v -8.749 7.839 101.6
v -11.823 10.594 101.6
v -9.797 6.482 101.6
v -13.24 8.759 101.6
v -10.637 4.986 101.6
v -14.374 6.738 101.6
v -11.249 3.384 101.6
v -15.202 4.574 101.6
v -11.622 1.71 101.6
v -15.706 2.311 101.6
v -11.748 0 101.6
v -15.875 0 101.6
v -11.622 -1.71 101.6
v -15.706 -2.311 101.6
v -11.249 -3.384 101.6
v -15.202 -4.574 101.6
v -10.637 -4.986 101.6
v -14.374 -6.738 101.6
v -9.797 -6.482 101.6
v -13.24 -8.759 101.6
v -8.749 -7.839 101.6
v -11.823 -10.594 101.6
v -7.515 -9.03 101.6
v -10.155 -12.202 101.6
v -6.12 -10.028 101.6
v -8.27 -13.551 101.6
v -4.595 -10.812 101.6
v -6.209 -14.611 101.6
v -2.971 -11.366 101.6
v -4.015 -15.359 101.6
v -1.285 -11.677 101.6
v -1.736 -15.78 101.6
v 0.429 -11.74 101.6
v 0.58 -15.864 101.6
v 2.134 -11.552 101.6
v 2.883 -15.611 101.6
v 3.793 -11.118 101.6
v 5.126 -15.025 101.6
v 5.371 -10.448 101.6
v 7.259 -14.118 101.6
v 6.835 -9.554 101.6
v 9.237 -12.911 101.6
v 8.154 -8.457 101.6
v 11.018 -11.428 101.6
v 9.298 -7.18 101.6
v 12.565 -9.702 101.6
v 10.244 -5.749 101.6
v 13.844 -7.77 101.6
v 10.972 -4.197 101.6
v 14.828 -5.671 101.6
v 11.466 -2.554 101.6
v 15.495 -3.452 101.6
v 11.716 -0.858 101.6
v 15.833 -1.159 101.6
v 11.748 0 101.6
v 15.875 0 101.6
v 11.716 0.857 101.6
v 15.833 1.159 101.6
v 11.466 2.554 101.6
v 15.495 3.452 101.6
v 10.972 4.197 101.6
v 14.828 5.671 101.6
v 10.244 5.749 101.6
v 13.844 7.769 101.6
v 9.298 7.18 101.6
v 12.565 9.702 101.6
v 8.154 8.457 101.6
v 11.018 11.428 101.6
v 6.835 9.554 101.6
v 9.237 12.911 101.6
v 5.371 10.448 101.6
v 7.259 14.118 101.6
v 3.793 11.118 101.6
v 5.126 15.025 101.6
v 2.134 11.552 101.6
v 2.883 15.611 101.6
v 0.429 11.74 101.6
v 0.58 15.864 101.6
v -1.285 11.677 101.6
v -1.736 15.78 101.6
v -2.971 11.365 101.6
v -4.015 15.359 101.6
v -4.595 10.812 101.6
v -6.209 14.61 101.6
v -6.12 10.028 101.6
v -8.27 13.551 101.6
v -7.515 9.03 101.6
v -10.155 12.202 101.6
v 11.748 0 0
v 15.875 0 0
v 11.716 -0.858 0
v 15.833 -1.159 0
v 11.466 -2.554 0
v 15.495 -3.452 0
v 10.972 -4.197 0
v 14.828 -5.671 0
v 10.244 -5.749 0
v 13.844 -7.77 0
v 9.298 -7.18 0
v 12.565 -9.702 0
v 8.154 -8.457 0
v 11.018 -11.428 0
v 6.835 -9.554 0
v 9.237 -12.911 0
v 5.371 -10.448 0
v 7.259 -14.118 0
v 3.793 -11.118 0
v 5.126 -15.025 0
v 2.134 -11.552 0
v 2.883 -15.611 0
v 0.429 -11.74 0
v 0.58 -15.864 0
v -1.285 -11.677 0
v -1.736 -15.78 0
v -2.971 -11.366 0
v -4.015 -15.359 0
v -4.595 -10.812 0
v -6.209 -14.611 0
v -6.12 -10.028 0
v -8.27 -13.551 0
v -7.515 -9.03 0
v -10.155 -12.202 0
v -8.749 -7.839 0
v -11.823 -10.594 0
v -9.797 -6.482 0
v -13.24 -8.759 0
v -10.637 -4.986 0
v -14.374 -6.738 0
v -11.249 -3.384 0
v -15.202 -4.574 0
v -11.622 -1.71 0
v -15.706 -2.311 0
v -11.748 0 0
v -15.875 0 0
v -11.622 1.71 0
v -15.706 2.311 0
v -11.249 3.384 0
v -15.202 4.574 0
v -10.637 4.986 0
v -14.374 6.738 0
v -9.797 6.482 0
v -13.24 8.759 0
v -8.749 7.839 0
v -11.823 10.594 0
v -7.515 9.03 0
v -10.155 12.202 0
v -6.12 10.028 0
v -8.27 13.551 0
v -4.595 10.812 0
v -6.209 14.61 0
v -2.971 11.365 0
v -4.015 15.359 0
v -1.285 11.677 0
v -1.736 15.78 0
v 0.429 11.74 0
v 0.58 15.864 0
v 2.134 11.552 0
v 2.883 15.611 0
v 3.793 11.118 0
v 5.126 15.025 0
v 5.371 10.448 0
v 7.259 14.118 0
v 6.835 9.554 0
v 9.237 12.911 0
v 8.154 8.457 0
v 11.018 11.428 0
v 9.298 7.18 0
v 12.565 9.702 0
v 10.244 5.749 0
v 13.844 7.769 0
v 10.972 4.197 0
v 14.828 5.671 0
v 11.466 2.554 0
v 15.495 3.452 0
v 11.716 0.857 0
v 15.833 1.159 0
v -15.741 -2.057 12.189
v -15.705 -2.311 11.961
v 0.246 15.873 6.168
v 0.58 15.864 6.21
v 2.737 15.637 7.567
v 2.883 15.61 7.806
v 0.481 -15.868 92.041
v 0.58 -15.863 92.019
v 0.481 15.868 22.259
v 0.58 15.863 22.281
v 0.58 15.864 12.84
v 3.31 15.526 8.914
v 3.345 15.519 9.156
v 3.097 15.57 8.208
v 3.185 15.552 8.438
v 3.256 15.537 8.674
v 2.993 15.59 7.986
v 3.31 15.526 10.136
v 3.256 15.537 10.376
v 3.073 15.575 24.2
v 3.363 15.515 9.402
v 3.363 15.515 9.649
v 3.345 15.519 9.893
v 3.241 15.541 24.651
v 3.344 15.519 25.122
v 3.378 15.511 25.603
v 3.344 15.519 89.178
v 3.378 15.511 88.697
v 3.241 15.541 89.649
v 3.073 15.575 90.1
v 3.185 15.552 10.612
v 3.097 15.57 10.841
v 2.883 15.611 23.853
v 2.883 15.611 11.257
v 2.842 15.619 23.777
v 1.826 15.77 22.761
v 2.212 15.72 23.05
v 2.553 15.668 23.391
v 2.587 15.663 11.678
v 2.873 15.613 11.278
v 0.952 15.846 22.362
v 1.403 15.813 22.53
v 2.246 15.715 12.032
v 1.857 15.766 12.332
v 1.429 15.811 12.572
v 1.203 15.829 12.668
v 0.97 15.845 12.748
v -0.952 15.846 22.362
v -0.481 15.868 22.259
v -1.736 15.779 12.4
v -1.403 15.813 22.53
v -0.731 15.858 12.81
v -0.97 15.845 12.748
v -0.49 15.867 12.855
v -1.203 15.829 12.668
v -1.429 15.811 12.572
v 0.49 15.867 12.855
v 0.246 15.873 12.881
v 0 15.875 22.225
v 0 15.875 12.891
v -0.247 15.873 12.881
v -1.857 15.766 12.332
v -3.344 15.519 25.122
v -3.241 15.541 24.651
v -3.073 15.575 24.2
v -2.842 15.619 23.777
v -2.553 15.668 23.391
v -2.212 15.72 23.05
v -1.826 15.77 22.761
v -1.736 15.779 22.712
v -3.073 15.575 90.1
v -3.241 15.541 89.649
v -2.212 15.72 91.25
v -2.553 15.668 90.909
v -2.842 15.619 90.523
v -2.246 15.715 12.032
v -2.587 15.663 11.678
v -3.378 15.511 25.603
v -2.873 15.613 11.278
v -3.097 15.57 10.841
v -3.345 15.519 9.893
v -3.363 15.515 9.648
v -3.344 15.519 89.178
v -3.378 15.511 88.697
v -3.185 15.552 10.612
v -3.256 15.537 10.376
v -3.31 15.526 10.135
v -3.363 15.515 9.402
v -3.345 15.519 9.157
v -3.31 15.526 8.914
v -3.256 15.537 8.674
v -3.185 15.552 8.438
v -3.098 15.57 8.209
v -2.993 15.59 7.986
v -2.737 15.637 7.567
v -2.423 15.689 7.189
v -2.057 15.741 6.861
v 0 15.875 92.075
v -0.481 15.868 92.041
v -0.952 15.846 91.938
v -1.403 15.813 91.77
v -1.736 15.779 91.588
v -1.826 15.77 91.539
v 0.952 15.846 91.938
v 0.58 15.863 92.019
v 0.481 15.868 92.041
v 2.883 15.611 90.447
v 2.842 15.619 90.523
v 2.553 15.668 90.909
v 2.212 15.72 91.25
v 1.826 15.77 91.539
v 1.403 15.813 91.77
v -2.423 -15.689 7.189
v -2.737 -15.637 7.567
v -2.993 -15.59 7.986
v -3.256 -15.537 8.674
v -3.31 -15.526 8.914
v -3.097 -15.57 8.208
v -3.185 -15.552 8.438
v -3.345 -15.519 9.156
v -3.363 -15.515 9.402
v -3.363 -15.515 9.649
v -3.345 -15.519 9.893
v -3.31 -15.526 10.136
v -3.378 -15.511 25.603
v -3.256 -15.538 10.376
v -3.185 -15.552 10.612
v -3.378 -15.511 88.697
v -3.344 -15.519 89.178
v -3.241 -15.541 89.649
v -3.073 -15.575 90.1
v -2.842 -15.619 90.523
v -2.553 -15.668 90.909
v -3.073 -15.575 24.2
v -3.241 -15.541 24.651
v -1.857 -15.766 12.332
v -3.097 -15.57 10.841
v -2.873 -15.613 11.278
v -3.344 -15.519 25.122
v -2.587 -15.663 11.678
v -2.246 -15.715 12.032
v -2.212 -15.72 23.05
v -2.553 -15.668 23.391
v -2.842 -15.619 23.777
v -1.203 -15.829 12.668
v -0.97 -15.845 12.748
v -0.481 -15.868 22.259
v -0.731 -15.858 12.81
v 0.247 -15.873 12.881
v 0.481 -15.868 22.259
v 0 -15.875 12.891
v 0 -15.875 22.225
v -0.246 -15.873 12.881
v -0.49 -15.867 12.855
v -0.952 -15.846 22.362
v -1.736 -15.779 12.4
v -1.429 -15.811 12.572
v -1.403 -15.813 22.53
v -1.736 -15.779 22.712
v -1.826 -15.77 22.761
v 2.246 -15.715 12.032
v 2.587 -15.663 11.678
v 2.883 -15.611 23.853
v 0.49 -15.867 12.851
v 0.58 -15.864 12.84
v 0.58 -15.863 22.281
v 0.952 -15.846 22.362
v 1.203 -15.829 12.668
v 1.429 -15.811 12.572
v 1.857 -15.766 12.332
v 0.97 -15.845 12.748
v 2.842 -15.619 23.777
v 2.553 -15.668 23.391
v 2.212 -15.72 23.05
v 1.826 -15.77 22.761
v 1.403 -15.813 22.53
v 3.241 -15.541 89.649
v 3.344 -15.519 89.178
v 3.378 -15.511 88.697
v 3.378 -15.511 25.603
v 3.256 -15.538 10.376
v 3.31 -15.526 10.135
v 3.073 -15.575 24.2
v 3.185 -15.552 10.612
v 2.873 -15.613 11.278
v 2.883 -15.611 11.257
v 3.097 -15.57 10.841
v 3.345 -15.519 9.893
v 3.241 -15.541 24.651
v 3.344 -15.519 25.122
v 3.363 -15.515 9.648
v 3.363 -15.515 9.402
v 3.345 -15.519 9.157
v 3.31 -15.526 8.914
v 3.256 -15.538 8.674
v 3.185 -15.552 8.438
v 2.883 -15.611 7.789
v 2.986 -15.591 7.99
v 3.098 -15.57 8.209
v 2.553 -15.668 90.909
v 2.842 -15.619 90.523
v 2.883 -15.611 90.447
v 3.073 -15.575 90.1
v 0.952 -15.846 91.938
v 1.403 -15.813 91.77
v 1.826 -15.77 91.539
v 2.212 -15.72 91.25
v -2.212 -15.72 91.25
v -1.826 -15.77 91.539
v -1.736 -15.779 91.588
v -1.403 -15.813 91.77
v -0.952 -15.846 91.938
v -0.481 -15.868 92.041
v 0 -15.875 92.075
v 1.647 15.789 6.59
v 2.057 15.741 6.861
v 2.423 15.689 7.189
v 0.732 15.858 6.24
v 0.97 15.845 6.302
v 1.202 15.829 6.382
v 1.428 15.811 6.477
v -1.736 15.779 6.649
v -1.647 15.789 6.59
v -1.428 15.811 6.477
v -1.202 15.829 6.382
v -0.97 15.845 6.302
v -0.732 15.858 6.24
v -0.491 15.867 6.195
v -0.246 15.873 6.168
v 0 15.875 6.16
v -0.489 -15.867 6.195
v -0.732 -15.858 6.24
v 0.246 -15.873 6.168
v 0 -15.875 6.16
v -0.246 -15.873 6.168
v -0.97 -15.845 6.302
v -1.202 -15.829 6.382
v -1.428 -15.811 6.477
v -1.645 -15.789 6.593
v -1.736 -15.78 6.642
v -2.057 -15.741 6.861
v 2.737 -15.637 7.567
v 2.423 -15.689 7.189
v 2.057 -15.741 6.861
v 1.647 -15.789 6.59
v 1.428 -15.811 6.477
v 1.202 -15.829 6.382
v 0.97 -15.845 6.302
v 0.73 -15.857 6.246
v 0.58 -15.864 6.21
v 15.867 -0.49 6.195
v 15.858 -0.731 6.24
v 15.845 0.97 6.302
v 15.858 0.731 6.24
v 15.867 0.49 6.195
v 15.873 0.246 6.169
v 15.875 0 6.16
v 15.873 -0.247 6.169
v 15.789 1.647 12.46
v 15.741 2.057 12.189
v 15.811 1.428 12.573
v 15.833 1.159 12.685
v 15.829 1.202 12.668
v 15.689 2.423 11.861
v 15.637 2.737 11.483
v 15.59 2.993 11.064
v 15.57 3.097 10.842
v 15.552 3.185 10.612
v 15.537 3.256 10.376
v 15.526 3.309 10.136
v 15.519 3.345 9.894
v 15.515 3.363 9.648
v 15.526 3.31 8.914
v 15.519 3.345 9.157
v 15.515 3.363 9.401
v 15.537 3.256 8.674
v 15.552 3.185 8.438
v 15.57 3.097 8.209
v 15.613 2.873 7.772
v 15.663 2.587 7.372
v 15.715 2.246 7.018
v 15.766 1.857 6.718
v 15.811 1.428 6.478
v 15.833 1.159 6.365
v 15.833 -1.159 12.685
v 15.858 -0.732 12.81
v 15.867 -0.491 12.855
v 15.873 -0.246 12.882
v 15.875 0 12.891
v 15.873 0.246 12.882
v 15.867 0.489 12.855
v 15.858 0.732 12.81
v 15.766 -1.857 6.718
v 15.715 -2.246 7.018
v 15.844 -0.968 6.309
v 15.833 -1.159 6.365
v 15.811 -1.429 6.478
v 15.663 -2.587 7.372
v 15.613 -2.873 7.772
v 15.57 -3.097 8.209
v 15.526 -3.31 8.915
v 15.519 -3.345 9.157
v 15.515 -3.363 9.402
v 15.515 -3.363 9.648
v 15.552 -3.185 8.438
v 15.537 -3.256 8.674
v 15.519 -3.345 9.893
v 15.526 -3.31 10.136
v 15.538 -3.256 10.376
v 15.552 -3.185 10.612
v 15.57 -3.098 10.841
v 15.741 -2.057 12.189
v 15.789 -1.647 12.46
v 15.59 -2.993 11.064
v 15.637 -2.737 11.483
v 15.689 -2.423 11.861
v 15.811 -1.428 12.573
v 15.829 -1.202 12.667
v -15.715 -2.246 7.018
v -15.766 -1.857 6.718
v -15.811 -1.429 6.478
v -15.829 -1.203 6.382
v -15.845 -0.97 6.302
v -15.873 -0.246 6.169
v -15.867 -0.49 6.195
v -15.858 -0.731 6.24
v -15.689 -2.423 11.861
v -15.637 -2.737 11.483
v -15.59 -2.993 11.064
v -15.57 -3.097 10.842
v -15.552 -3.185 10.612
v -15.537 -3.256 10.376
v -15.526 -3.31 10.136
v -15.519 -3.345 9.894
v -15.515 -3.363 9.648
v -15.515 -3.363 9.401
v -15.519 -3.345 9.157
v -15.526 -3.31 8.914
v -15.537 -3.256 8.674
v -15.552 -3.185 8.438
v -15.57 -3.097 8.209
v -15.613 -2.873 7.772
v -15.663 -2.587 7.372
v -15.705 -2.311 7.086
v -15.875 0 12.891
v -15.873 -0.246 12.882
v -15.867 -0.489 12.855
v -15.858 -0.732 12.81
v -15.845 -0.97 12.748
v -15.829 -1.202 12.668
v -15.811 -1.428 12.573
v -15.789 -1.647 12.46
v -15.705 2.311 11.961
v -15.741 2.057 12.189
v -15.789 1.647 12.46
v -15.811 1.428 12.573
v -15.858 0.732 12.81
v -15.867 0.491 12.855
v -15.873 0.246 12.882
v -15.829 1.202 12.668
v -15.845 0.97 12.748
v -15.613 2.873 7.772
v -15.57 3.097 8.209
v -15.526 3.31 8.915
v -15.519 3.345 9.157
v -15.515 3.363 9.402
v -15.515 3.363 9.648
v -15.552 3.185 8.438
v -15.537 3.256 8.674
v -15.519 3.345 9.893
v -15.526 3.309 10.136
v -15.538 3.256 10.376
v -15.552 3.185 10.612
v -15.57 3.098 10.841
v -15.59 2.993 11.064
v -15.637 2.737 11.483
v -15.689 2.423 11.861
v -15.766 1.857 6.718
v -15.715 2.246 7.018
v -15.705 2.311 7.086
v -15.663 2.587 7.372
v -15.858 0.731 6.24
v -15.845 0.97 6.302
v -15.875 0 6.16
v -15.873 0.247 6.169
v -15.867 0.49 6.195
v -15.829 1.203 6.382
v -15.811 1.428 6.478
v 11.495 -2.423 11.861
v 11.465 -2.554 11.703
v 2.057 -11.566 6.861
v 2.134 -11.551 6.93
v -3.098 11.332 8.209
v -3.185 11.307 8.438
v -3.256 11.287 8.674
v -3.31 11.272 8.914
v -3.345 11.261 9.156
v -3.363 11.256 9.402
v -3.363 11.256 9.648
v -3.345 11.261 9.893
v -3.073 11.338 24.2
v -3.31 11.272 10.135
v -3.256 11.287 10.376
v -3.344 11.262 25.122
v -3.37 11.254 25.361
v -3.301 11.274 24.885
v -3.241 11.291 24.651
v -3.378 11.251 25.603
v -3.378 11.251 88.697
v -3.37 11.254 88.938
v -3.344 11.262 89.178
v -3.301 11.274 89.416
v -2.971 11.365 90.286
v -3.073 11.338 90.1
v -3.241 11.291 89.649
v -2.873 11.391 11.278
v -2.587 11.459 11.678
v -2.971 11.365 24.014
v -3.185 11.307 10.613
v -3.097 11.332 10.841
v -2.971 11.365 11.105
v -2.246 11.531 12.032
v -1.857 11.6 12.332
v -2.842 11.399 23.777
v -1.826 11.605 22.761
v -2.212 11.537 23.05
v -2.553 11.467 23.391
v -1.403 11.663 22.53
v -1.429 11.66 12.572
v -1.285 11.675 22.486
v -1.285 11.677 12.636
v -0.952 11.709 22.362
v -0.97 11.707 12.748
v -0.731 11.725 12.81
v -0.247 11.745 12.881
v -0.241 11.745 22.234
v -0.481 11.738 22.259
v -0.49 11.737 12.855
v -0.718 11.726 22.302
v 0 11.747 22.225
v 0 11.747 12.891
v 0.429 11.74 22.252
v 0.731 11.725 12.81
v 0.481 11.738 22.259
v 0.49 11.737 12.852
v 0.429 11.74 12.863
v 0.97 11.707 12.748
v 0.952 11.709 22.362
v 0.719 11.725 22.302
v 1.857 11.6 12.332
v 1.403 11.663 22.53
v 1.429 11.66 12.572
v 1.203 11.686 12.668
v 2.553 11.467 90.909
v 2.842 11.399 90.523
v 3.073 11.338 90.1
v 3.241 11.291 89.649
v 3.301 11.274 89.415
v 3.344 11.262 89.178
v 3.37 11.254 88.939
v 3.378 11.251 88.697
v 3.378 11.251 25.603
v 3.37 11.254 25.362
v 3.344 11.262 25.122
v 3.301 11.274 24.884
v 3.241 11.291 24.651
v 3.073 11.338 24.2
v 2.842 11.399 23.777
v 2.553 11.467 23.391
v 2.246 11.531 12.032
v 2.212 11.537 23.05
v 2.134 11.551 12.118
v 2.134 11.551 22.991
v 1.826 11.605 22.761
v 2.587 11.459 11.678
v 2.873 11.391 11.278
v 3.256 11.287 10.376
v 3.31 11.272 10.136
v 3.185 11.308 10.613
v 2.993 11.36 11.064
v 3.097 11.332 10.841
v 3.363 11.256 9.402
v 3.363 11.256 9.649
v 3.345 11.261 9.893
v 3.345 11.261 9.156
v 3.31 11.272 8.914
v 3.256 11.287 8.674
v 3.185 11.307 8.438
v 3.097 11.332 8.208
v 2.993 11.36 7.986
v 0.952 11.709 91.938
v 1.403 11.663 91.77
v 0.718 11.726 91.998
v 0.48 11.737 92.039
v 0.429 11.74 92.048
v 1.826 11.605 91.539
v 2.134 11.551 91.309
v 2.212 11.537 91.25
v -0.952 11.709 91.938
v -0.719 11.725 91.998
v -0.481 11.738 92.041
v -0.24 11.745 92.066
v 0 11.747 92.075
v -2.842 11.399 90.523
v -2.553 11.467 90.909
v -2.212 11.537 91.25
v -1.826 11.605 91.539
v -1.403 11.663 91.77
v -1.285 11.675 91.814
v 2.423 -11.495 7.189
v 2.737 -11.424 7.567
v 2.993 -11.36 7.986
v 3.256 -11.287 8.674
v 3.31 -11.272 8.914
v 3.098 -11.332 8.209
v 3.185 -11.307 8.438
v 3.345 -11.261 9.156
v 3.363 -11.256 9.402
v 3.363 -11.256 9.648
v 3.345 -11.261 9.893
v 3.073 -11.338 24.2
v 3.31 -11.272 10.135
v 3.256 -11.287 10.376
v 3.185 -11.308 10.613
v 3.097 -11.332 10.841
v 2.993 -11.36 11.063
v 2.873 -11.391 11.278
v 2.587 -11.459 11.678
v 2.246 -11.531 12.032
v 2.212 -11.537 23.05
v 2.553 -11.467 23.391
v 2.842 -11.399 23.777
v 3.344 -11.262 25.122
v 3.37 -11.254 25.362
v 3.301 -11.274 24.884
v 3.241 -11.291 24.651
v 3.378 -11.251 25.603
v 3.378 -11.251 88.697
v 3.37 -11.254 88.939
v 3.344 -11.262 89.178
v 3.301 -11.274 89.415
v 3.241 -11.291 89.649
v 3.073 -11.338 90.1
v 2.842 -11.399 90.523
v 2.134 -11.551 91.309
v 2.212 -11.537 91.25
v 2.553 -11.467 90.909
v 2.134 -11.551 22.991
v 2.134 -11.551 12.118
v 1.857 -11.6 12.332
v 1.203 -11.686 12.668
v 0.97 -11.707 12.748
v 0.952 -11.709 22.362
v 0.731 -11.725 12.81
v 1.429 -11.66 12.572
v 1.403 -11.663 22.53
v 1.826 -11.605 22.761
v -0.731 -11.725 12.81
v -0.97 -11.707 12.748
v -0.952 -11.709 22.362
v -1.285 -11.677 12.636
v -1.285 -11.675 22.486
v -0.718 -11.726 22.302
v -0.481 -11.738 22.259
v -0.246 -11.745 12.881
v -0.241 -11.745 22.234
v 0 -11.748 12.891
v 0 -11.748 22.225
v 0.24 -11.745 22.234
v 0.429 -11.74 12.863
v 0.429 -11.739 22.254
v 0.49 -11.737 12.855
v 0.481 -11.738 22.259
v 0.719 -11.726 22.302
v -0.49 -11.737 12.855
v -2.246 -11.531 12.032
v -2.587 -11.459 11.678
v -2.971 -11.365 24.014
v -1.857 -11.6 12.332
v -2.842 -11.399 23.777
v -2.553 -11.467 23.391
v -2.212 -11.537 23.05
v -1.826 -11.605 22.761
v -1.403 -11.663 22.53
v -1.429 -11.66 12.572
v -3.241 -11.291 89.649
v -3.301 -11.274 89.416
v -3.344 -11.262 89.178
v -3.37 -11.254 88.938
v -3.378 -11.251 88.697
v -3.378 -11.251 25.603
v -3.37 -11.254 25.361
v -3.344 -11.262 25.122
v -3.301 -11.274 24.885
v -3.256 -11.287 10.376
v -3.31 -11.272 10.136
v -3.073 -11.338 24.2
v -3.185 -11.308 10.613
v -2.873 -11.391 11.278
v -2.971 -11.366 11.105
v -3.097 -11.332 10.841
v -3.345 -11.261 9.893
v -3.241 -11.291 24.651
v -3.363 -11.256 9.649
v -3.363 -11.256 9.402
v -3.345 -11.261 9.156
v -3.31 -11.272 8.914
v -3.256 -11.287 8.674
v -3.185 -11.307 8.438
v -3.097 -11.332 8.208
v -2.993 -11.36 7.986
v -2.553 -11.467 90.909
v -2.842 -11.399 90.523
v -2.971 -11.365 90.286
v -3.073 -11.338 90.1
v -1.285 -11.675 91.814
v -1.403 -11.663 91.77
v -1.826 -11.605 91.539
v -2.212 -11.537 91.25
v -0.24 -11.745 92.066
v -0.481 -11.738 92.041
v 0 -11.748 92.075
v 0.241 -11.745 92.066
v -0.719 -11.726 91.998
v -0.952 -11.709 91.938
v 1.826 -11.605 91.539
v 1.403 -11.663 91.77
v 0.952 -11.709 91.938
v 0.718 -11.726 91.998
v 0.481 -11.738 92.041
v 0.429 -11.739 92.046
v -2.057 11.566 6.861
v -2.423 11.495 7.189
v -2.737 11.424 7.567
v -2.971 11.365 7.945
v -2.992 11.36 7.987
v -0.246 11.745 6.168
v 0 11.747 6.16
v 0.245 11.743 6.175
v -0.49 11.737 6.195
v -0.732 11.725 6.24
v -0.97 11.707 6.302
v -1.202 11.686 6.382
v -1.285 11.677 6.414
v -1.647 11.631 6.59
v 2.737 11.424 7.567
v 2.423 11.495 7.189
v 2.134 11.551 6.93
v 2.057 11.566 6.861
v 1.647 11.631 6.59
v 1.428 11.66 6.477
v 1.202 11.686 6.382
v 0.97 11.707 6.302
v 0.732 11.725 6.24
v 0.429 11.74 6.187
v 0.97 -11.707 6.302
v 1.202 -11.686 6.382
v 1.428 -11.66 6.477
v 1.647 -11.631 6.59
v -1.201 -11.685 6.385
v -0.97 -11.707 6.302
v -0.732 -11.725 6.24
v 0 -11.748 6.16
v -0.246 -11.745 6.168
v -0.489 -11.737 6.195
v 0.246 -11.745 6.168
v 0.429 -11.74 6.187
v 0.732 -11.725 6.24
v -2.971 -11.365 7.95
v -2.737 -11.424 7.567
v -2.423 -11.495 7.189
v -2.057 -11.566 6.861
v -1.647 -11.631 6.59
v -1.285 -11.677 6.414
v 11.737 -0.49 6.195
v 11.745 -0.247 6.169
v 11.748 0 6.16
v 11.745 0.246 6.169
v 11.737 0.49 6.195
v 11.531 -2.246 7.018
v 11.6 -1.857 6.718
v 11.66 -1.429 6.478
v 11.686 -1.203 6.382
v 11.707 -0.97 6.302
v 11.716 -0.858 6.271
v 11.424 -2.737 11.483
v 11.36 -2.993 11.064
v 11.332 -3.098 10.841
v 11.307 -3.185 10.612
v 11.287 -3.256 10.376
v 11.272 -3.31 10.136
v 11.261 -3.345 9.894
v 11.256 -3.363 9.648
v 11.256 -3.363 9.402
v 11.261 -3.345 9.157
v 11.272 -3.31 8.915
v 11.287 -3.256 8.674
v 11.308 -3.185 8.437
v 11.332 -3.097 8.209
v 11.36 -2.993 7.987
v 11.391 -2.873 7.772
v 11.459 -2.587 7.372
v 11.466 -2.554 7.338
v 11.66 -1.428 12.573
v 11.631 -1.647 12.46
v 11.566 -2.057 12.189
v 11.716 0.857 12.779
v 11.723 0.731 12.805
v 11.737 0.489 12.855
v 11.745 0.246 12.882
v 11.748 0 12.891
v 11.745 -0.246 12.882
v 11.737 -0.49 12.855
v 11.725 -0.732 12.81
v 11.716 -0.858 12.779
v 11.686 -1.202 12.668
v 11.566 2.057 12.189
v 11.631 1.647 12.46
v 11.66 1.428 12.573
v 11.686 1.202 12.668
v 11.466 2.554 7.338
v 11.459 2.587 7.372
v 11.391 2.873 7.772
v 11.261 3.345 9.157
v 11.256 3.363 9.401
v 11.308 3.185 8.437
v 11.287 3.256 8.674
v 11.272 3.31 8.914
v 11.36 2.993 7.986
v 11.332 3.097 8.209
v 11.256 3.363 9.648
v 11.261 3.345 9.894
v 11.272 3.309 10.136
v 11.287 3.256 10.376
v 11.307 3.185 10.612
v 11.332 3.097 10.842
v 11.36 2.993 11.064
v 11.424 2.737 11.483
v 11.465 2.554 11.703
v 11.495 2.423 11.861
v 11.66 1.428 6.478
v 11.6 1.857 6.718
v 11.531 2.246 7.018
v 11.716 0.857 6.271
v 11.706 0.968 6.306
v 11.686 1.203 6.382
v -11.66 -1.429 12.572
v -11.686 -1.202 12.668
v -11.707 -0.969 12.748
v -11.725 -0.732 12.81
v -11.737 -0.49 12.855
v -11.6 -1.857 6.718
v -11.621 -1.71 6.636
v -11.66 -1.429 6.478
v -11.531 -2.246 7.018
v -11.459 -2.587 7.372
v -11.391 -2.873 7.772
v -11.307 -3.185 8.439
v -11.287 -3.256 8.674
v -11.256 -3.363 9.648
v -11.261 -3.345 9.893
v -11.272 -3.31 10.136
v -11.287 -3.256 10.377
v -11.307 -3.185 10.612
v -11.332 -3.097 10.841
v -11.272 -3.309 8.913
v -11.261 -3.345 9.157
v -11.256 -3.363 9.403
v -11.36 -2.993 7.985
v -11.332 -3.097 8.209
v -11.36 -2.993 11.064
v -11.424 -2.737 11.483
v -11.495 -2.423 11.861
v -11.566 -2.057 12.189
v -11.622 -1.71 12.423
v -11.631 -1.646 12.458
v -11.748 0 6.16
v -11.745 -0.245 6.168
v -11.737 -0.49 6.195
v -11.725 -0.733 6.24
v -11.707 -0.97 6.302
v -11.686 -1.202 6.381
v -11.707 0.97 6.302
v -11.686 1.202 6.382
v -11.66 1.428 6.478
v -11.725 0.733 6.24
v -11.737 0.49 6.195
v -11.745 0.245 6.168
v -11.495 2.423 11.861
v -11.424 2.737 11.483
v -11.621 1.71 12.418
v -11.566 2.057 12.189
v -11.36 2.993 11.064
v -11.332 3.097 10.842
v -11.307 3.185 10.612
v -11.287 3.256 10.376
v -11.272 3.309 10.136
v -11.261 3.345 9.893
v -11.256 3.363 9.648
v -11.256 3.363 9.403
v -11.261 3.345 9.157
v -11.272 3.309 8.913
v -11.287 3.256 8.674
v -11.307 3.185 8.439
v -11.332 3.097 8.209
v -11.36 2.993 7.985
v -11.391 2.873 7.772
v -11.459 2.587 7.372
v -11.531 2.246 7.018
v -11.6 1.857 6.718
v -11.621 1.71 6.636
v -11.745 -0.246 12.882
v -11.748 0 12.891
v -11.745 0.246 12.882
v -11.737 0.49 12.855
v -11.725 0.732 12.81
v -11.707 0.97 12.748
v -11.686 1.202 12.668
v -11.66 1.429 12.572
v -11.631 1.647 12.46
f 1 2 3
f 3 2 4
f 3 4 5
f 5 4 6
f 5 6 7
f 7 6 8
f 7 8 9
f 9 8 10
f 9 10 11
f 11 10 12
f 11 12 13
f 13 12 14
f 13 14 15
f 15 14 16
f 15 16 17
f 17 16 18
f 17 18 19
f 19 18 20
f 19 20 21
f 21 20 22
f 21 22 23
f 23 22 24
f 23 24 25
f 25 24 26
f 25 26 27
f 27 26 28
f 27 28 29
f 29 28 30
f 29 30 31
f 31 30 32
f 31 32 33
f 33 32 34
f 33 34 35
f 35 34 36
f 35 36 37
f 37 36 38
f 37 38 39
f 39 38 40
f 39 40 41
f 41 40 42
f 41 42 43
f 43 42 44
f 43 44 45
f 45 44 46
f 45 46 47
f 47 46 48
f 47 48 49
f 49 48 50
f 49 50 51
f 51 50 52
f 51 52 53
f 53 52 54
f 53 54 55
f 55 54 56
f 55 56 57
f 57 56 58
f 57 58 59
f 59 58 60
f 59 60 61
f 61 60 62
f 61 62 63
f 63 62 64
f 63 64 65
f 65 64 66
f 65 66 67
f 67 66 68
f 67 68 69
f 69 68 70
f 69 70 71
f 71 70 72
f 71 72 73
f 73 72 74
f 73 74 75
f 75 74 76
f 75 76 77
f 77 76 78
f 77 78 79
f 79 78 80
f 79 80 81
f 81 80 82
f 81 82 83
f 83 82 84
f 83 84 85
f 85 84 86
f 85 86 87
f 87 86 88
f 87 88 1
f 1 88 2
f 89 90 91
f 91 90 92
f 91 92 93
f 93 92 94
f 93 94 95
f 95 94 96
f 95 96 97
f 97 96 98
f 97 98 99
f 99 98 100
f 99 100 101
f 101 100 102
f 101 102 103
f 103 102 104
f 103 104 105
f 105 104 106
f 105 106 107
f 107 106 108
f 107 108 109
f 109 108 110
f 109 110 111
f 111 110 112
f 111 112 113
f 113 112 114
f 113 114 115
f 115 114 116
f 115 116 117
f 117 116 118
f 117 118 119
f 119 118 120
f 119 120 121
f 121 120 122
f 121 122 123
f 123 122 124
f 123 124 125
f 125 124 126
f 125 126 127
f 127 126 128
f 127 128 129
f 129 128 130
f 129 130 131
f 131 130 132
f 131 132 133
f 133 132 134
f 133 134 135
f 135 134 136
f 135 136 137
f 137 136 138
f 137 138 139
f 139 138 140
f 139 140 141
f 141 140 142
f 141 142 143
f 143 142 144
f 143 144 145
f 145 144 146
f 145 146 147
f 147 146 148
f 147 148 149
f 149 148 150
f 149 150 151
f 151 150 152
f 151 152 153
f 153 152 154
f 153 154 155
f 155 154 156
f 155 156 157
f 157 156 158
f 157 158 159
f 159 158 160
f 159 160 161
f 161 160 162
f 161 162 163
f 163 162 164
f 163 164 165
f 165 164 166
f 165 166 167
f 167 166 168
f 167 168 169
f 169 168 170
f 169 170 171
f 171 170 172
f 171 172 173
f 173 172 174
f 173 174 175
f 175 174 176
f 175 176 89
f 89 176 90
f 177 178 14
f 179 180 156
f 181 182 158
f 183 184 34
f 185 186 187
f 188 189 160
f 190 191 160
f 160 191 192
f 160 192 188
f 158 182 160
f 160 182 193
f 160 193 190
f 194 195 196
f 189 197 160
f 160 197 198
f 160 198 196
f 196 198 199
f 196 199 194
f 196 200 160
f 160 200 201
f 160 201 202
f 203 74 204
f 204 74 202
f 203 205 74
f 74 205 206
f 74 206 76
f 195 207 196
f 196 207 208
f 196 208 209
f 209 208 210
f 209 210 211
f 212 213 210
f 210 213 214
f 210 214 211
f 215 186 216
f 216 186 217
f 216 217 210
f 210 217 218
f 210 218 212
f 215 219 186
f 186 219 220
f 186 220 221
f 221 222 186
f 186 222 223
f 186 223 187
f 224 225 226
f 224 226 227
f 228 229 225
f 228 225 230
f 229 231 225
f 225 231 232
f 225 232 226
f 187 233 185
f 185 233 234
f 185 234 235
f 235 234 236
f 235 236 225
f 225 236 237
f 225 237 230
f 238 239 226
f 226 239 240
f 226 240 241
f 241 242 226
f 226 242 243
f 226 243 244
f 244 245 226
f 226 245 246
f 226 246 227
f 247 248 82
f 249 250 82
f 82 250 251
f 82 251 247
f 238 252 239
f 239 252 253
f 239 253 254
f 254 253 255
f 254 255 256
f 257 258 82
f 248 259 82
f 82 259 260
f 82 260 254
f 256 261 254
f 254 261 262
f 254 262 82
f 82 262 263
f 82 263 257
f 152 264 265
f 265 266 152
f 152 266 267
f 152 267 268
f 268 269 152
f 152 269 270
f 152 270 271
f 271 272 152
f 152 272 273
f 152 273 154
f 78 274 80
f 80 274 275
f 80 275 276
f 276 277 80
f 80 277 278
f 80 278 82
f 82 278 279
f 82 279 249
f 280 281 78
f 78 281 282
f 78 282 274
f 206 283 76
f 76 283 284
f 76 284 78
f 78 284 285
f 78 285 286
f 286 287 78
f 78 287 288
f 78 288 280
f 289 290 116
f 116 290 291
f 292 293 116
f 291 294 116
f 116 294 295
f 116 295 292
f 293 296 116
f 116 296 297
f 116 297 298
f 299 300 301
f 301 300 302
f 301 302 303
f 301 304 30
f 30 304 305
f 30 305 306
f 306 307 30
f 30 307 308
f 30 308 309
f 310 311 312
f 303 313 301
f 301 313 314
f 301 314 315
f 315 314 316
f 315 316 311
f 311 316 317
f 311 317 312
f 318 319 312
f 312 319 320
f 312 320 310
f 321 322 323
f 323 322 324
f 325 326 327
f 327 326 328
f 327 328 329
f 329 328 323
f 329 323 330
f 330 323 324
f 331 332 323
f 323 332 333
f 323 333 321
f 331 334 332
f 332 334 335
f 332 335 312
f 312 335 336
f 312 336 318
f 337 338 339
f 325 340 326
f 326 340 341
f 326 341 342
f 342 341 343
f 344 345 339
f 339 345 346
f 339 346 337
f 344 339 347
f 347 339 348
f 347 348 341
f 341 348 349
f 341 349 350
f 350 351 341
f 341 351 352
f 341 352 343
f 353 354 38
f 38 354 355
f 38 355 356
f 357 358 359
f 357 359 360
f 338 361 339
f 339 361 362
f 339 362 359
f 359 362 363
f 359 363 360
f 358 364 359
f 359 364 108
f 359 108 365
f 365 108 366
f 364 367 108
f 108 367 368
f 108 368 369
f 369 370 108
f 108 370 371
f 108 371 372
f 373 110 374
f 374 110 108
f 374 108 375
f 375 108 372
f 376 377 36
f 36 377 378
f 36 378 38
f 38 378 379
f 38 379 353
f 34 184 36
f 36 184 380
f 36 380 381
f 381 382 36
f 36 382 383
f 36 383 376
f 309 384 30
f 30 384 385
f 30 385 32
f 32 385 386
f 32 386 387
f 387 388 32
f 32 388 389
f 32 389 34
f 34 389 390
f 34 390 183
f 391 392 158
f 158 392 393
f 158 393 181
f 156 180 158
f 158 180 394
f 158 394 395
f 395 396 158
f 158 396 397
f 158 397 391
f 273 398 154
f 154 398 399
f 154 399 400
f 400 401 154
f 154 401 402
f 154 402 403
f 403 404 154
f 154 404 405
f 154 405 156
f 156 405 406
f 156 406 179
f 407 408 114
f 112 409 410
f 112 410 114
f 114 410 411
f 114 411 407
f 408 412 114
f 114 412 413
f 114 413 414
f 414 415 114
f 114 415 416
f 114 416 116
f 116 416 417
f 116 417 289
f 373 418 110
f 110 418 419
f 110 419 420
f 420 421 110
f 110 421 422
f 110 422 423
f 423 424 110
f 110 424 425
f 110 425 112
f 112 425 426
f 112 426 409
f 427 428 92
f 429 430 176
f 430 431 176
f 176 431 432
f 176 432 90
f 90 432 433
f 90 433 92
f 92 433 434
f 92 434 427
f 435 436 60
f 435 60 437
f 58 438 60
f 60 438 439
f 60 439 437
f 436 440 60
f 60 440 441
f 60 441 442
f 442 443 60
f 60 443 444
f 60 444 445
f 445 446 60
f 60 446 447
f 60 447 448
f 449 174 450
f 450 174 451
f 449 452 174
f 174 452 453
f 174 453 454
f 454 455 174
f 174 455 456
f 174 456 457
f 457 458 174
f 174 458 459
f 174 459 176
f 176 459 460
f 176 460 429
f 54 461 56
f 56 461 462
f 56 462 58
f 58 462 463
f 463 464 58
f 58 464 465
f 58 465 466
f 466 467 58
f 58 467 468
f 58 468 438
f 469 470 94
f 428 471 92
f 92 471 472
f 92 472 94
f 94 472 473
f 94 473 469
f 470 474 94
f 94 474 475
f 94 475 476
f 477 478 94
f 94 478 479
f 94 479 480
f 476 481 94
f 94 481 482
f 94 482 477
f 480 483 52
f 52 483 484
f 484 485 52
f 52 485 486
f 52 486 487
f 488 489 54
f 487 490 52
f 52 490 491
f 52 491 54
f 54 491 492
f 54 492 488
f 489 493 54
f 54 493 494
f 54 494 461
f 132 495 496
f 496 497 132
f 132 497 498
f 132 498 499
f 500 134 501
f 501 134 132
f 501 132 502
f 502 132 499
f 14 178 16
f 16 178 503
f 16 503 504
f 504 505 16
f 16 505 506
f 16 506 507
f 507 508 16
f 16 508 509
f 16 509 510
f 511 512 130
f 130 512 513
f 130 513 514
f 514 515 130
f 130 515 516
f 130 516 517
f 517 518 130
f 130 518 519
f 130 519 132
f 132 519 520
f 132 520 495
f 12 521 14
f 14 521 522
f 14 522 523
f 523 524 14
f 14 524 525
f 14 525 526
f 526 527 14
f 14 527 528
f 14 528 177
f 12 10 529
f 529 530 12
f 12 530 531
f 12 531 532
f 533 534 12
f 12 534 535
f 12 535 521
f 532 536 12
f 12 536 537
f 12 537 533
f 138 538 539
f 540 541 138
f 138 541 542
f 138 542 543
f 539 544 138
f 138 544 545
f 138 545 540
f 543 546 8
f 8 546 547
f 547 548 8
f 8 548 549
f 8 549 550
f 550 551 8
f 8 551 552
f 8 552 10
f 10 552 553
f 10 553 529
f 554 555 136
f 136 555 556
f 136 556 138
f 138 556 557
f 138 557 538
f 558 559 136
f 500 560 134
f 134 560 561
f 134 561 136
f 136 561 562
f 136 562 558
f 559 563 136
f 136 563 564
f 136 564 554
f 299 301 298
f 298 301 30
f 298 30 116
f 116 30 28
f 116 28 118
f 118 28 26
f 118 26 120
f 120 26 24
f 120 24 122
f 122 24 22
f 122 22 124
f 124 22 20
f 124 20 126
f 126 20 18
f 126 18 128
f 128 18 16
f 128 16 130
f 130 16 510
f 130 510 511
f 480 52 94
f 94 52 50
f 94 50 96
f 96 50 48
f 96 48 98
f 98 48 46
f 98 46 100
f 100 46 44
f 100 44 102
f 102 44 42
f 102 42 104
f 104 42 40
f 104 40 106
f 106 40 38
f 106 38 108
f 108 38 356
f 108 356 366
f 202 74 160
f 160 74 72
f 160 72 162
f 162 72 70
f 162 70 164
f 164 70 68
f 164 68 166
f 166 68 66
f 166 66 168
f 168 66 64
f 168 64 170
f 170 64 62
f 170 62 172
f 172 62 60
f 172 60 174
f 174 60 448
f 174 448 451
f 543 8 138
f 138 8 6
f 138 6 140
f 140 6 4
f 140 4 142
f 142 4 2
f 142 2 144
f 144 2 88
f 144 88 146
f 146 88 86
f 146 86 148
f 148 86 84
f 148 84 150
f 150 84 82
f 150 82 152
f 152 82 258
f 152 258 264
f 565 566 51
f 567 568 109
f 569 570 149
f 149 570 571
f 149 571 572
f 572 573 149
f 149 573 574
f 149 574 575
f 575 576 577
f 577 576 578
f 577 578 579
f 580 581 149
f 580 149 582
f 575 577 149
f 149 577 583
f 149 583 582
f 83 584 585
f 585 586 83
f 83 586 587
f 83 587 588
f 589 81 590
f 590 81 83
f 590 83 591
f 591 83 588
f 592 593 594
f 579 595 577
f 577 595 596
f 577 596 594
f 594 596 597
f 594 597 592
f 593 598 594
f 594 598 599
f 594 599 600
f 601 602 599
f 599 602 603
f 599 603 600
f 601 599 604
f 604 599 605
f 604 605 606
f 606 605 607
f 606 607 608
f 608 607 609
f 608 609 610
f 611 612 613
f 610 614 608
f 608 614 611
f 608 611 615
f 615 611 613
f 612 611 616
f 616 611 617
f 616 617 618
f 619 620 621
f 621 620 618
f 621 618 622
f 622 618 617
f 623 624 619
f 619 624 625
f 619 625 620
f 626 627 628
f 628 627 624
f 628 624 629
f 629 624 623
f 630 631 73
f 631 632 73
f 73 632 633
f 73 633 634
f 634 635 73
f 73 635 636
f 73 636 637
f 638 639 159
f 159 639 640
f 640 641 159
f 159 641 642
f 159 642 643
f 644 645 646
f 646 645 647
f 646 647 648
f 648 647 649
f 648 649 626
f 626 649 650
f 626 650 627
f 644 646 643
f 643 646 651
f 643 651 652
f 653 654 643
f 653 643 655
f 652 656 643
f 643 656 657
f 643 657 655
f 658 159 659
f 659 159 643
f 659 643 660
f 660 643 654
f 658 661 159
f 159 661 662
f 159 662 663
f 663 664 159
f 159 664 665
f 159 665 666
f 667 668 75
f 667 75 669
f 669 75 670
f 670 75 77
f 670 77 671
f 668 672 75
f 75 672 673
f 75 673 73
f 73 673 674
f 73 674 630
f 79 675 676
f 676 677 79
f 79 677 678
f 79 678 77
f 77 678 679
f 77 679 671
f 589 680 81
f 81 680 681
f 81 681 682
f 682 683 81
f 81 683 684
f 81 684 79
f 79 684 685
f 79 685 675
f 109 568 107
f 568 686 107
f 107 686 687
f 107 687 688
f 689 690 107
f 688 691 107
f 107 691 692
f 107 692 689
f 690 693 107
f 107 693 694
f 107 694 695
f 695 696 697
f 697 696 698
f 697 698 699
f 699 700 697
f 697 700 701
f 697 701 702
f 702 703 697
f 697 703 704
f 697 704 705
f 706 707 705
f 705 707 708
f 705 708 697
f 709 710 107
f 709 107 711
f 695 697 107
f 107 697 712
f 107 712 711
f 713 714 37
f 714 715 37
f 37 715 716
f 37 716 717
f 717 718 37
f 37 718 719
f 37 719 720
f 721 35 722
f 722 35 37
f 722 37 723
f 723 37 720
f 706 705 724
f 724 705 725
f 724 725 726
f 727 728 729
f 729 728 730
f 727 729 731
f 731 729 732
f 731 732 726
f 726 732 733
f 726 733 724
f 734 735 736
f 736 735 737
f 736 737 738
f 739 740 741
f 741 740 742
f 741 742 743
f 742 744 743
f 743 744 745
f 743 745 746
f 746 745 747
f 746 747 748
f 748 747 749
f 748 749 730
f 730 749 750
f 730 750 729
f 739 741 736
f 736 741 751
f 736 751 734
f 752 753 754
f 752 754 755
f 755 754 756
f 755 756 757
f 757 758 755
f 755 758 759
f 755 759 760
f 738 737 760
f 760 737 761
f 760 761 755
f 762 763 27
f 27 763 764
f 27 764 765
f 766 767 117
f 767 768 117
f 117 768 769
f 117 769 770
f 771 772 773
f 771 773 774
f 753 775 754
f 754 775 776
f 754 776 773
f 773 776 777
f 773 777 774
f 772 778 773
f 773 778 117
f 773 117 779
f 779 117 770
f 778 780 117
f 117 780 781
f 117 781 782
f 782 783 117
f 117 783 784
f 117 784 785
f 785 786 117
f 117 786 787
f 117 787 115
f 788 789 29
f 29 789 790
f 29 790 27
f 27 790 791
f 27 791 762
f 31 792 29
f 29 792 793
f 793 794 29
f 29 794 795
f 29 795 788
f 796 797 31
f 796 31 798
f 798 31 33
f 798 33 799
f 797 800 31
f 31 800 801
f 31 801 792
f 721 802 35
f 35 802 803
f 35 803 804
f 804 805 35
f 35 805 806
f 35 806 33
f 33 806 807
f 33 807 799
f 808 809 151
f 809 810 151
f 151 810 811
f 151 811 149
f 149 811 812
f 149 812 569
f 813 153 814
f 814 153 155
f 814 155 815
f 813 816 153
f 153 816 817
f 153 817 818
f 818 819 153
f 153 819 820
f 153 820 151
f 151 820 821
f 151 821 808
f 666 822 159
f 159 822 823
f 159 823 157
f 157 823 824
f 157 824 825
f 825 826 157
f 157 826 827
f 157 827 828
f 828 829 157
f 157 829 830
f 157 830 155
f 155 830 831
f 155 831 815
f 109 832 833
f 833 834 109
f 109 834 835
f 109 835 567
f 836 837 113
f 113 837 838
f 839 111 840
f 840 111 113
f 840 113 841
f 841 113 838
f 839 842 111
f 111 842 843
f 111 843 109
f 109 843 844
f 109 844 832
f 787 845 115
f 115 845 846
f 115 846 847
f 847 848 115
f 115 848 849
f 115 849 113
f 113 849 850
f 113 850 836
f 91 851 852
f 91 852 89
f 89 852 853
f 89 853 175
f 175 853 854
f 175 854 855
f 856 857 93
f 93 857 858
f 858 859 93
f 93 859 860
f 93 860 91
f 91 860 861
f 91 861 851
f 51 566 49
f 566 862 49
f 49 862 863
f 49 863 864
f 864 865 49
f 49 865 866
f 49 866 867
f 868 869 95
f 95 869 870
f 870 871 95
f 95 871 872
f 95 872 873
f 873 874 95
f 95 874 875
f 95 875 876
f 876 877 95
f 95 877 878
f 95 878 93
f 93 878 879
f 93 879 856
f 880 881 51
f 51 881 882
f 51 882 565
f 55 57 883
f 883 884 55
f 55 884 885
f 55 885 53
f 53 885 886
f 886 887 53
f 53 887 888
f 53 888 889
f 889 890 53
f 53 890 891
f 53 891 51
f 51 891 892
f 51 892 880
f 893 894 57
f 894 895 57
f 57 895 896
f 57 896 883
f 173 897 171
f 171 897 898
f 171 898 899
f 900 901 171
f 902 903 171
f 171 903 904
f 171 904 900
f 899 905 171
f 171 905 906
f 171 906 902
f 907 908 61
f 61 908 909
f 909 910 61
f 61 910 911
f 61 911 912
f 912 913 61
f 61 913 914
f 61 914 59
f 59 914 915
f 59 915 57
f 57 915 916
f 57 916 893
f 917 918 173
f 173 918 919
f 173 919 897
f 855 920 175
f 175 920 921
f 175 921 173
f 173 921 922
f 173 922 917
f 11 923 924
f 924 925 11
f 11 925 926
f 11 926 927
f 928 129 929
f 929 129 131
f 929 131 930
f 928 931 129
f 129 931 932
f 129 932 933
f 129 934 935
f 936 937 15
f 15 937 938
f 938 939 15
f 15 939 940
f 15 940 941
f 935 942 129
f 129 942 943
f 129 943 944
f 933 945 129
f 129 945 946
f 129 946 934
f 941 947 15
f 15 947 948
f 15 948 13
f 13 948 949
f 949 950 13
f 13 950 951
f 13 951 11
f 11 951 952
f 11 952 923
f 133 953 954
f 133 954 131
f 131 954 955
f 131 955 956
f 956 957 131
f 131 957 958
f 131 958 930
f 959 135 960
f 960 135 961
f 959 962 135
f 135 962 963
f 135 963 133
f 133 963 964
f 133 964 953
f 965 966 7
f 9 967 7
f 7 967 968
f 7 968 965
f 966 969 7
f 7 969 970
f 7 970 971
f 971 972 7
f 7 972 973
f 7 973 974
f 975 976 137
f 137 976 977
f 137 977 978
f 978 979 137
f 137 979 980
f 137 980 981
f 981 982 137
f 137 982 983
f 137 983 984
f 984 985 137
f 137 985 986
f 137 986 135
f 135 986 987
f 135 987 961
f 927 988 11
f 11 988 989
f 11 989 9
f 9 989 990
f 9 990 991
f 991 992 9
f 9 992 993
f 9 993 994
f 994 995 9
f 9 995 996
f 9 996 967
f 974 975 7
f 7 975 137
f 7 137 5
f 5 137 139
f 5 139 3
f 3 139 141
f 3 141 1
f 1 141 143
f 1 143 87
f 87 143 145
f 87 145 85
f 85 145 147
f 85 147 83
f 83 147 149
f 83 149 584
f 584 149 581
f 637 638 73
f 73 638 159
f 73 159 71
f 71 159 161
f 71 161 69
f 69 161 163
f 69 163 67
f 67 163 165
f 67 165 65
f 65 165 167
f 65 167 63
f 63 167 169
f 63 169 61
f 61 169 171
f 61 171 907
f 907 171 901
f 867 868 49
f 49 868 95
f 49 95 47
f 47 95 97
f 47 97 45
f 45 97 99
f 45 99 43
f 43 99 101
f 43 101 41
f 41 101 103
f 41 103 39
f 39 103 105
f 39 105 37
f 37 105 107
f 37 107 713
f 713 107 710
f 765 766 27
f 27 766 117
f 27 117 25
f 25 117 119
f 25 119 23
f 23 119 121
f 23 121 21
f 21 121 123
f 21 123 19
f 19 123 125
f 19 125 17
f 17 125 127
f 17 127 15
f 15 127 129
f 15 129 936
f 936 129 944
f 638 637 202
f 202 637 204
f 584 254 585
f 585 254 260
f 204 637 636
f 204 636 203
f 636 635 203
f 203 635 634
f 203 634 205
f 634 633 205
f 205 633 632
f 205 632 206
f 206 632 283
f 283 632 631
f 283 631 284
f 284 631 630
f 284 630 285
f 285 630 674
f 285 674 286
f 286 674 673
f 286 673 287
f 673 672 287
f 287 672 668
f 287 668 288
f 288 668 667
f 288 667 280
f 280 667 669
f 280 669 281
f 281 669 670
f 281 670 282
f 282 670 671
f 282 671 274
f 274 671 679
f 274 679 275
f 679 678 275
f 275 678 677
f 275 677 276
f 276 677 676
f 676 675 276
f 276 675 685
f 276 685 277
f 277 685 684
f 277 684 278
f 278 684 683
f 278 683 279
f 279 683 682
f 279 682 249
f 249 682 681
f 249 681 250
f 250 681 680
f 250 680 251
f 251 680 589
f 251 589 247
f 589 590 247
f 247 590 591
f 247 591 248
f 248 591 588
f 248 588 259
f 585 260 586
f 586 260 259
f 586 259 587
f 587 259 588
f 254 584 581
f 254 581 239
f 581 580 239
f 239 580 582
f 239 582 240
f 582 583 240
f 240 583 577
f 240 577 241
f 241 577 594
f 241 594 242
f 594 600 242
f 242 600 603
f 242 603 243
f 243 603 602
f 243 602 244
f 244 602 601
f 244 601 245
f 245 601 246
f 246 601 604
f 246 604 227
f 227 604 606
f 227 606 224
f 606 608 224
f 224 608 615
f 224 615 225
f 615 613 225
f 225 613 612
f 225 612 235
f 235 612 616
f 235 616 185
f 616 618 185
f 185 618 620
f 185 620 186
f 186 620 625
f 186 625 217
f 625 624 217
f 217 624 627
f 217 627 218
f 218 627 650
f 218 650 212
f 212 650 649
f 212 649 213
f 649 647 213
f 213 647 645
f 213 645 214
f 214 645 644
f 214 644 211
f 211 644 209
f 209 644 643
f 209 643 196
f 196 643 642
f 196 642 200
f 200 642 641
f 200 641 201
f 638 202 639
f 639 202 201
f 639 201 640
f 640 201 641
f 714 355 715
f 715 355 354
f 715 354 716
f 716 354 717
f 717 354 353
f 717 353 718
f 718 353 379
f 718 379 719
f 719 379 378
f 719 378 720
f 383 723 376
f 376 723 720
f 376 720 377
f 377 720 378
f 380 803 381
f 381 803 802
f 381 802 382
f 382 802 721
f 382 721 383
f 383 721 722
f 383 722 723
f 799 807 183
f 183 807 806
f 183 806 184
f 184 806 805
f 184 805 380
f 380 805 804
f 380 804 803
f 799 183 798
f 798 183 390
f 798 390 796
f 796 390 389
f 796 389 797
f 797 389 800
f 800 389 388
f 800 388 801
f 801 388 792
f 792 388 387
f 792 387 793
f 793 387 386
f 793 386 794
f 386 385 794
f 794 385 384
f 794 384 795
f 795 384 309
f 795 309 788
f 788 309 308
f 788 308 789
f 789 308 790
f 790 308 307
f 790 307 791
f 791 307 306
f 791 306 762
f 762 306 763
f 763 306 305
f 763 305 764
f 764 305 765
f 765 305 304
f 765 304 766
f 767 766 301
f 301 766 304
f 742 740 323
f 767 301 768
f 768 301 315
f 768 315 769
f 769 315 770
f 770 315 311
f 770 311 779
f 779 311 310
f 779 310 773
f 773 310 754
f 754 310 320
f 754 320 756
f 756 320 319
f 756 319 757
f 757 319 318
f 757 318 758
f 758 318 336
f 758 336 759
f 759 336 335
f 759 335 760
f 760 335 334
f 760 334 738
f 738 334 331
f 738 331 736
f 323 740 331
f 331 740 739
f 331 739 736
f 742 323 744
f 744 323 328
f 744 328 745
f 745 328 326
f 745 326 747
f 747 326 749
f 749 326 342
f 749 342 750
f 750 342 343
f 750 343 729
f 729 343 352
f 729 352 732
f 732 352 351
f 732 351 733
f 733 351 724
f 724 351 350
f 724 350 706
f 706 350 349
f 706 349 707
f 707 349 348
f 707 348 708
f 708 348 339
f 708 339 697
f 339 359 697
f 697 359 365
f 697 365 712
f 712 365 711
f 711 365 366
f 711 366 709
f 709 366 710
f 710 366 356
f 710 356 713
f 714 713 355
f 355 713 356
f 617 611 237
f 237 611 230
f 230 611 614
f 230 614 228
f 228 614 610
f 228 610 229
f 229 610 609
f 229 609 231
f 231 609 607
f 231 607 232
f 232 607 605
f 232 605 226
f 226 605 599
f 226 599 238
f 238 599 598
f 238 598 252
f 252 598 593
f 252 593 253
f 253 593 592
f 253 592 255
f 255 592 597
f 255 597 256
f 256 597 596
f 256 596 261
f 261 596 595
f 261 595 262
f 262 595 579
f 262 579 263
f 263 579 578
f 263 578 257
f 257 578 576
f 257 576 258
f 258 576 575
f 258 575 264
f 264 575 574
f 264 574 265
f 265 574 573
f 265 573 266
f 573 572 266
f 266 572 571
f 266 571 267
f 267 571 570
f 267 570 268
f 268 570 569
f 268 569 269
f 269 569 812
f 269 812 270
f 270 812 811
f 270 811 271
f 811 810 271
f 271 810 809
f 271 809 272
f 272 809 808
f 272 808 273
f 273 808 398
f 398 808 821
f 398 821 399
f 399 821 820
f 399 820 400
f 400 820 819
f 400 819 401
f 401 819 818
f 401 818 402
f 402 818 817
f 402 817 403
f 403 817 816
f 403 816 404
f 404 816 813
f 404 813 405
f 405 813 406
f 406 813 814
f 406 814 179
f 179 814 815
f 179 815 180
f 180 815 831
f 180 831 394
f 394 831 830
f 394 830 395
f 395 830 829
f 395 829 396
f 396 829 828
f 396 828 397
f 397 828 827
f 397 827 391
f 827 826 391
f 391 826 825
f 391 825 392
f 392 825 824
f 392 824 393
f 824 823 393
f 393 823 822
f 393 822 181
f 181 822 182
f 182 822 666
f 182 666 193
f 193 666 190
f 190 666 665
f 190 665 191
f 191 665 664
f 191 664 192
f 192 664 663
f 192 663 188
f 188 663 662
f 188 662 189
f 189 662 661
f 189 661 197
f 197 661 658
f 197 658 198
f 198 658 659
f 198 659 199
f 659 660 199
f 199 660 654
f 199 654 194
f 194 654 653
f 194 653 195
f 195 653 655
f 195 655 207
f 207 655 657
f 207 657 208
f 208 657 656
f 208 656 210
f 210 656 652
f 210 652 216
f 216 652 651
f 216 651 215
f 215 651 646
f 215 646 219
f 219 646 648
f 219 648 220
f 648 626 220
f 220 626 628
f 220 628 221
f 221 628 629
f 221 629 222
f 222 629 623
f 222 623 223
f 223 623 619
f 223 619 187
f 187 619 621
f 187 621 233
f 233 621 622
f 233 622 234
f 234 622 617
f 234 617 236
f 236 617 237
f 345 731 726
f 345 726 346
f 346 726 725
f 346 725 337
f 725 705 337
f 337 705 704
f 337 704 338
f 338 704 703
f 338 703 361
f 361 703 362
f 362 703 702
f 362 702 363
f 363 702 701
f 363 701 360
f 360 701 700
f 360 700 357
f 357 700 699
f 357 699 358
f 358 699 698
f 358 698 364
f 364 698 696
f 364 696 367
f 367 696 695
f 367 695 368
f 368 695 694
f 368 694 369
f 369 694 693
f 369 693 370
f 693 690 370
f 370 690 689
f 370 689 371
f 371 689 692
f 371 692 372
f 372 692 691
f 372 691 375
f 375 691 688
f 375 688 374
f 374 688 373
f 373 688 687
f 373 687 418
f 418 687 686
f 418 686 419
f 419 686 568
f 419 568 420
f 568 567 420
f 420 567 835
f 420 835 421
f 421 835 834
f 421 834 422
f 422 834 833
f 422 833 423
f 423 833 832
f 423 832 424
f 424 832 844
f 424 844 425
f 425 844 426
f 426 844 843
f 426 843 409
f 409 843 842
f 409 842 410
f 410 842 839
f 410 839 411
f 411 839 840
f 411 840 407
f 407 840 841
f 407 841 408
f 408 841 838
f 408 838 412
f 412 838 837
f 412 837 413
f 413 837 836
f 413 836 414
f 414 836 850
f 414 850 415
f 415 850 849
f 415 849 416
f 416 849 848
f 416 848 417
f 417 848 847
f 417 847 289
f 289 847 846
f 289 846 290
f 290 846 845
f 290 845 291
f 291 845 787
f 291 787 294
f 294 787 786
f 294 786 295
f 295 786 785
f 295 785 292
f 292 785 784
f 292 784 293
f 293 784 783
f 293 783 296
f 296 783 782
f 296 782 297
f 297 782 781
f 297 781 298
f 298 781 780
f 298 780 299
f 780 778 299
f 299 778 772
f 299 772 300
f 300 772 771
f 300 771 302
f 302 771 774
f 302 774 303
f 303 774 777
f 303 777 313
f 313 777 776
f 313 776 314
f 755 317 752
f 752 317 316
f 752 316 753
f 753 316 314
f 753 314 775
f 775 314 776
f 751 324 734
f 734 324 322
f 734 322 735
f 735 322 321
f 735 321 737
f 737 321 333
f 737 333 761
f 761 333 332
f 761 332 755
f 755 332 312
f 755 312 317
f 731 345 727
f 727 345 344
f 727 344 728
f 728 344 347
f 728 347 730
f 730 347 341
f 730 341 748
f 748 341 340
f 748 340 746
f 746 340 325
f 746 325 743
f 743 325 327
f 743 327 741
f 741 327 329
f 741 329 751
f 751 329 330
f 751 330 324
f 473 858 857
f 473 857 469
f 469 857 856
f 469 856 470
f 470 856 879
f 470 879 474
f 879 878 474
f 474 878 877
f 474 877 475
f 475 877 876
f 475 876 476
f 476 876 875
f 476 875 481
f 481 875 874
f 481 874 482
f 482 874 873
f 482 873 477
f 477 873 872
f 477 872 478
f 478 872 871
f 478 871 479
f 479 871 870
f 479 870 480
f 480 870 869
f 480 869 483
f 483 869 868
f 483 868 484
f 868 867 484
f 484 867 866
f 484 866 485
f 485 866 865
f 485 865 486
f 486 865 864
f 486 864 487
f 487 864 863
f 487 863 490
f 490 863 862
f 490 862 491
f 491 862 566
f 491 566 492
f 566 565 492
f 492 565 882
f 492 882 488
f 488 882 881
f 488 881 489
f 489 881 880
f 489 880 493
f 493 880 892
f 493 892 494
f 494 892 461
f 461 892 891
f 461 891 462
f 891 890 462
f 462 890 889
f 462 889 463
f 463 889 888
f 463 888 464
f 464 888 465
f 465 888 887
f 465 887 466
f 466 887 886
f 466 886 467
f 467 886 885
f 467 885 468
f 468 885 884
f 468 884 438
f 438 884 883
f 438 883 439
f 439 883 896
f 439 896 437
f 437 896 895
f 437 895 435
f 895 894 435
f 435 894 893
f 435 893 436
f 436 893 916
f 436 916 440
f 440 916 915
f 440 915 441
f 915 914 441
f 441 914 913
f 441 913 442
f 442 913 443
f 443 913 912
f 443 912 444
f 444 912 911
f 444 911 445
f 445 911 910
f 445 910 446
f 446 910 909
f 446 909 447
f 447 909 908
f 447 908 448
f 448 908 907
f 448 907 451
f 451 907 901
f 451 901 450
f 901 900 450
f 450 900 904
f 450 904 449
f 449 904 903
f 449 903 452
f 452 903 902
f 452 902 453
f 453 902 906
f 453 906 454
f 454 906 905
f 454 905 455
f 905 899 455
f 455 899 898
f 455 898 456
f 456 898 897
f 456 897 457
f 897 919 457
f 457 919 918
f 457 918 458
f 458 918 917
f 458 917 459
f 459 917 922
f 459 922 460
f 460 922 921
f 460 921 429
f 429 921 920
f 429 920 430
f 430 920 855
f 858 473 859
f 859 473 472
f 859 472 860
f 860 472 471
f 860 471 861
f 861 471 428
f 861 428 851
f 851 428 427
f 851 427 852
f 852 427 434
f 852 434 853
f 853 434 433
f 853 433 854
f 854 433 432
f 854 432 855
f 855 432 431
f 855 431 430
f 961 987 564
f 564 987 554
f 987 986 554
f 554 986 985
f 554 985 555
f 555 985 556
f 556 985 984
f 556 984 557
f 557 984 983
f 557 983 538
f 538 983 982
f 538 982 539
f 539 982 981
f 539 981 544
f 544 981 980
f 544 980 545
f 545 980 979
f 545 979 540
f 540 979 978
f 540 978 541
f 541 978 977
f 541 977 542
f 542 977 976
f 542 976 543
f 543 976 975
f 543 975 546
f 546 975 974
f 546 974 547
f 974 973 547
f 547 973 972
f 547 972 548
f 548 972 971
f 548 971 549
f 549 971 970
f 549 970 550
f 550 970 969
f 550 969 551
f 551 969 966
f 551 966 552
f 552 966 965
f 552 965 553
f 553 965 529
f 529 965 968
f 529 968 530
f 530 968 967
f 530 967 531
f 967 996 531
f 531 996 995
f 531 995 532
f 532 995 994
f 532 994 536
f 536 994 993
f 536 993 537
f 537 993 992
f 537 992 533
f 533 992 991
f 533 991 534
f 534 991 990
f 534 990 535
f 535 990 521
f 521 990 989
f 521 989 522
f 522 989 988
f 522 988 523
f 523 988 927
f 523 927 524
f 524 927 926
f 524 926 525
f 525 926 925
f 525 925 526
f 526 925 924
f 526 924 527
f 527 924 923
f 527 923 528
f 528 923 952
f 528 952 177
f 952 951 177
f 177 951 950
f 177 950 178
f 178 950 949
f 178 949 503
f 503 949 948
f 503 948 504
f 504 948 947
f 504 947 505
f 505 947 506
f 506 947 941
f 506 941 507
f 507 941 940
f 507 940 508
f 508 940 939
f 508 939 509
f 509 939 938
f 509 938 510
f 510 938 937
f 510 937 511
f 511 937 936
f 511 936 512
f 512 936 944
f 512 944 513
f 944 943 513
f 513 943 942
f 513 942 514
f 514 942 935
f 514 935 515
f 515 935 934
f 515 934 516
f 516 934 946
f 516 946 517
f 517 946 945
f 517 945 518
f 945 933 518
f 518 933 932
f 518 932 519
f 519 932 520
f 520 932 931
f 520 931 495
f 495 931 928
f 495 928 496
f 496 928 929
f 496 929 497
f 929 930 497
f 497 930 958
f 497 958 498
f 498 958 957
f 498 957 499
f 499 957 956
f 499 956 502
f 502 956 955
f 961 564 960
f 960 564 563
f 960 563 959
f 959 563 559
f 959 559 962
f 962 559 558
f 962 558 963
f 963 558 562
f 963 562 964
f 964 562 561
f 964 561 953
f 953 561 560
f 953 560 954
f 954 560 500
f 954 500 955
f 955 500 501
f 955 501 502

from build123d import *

# Parameters (mm, degrees)
SKETCH1_R                   = 15.875
SKETCH1_R_2                 = 11.7475
BOSS_EXTRUDE1_DEPTH         = 101.6
F_1_4_START                 = 10
F_1_4_CLEARANCE_SLOT1_DEPTH = 7
CUT_EXTRUDE1_REACH          = 106.051
CUT_EXTRUDE1_END_RADIUS     = 15.875
CUT_EXTRUDE2_DEPTH          = 105.050907141
CUT_EXTRUDE2_DEPTH_BACK     = 105.050907141
SKETCH5_R                   = 3.3655
CUT_EXTRUDE3_DEPTH          = 105.050907141
CUT_EXTRUDE3_DEPTH_BACK     = 105.050907141
SKETCH6_R                   = 3.3655


with BuildPart() as part:
    # Sketch1 → Boss-Extrude1 (new body)
    with BuildSketch(Plane.XY):
        Circle(SKETCH1_R)
        Circle(SKETCH1_R_2, mode=Mode.SUBTRACT)
    extrude(amount=BOSS_EXTRUDE1_DEPTH)

    # 1/4 Clearance Slot1: read off the stored shape, not the designer's step
    # 1/4 Clearance Slot1 outline → 1/4 Clearance Slot1 (cut)
    with BuildSketch(Plane(origin=(0, 0, 0), x_dir=(1, 0, 0), z_dir=(0, 1, 0)).offset(F_1_4_START)):
        with BuildLine():
            Line((3.3782, -88.6968), (3.3782, -25.6032))
            ThreePointArc((3.3782, -25.6032), (0, -22.225), (-3.3782, -25.6032))
            Line((-3.3782, -25.6032), (-3.3782, -88.6968))
            ThreePointArc((-3.3782, -88.6968), (0, -92.075), (3.3782, -88.6968))
        make_face()
    extrude(amount=F_1_4_CLEARANCE_SLOT1_DEPTH, mode=Mode.SUBTRACT)

    # Cut-Extrude1: up to this cylinder (the profile starts inside it)
    cut_extrude1_end = Plane(origin=(0, 0, 57.15), z_dir=(0, 0, -1)) * Cylinder(CUT_EXTRUDE1_END_RADIUS, 244.852, mode=Mode.PRIVATE)
    # Sketch4 → Cut-Extrude1 (cut, up to the surface)
    with BuildSketch(Plane(origin=(0, 0, 0), x_dir=(1, 0, 0), z_dir=(0, 1, 0)), mode=Mode.PRIVATE) as cut_extrude1_sk1:
        with BuildLine():
            Line((-3.3782, -88.6968), (-3.3782, -25.6032))
            ThreePointArc((-3.3782, -25.6032), (0, -22.225), (3.3782, -25.6032))
            Line((3.3782, -25.6032), (3.3782, -88.6968))
            ThreePointArc((3.3782, -88.6968), (0, -92.075), (-3.3782, -88.6968))
        make_face()
    cut_extrude1_tool1 = extrude(cut_extrude1_sk1.sketch, amount=-CUT_EXTRUDE1_REACH, mode=Mode.PRIVATE) & cut_extrude1_end
    add(cut_extrude1_tool1.solids().sort_by_distance((0, 0, 57.15))[0], mode=Mode.SUBTRACT)

    # Sketch5 → Cut-Extrude2 (cut, two sides: drawn at the far end of the back side and taken through both)
    with BuildSketch(Plane(origin=(0, 0, 0), x_dir=(1, 0, 0), z_dir=(0, 1, 0)).offset(-CUT_EXTRUDE2_DEPTH_BACK)):
        with Locations(Location((0, -9.525, 0), (0, 0, 270))):
            Circle(SKETCH5_R)
    extrude(amount=CUT_EXTRUDE2_DEPTH + CUT_EXTRUDE2_DEPTH_BACK, mode=Mode.SUBTRACT)

    # Sketch6 → Cut-Extrude3 (cut, two sides: drawn at the far end of the back side and taken through both)
    with BuildSketch(Plane(origin=(0, 0, 0), x_dir=(0, 0, -1), z_dir=(1, 0, 0)).offset(-CUT_EXTRUDE3_DEPTH_BACK)):
        with Locations((-9.525, 0)):
            Circle(SKETCH6_R)
    extrude(amount=CUT_EXTRUDE3_DEPTH + CUT_EXTRUDE3_DEPTH_BACK, mode=Mode.SUBTRACT)


solid = part.part
